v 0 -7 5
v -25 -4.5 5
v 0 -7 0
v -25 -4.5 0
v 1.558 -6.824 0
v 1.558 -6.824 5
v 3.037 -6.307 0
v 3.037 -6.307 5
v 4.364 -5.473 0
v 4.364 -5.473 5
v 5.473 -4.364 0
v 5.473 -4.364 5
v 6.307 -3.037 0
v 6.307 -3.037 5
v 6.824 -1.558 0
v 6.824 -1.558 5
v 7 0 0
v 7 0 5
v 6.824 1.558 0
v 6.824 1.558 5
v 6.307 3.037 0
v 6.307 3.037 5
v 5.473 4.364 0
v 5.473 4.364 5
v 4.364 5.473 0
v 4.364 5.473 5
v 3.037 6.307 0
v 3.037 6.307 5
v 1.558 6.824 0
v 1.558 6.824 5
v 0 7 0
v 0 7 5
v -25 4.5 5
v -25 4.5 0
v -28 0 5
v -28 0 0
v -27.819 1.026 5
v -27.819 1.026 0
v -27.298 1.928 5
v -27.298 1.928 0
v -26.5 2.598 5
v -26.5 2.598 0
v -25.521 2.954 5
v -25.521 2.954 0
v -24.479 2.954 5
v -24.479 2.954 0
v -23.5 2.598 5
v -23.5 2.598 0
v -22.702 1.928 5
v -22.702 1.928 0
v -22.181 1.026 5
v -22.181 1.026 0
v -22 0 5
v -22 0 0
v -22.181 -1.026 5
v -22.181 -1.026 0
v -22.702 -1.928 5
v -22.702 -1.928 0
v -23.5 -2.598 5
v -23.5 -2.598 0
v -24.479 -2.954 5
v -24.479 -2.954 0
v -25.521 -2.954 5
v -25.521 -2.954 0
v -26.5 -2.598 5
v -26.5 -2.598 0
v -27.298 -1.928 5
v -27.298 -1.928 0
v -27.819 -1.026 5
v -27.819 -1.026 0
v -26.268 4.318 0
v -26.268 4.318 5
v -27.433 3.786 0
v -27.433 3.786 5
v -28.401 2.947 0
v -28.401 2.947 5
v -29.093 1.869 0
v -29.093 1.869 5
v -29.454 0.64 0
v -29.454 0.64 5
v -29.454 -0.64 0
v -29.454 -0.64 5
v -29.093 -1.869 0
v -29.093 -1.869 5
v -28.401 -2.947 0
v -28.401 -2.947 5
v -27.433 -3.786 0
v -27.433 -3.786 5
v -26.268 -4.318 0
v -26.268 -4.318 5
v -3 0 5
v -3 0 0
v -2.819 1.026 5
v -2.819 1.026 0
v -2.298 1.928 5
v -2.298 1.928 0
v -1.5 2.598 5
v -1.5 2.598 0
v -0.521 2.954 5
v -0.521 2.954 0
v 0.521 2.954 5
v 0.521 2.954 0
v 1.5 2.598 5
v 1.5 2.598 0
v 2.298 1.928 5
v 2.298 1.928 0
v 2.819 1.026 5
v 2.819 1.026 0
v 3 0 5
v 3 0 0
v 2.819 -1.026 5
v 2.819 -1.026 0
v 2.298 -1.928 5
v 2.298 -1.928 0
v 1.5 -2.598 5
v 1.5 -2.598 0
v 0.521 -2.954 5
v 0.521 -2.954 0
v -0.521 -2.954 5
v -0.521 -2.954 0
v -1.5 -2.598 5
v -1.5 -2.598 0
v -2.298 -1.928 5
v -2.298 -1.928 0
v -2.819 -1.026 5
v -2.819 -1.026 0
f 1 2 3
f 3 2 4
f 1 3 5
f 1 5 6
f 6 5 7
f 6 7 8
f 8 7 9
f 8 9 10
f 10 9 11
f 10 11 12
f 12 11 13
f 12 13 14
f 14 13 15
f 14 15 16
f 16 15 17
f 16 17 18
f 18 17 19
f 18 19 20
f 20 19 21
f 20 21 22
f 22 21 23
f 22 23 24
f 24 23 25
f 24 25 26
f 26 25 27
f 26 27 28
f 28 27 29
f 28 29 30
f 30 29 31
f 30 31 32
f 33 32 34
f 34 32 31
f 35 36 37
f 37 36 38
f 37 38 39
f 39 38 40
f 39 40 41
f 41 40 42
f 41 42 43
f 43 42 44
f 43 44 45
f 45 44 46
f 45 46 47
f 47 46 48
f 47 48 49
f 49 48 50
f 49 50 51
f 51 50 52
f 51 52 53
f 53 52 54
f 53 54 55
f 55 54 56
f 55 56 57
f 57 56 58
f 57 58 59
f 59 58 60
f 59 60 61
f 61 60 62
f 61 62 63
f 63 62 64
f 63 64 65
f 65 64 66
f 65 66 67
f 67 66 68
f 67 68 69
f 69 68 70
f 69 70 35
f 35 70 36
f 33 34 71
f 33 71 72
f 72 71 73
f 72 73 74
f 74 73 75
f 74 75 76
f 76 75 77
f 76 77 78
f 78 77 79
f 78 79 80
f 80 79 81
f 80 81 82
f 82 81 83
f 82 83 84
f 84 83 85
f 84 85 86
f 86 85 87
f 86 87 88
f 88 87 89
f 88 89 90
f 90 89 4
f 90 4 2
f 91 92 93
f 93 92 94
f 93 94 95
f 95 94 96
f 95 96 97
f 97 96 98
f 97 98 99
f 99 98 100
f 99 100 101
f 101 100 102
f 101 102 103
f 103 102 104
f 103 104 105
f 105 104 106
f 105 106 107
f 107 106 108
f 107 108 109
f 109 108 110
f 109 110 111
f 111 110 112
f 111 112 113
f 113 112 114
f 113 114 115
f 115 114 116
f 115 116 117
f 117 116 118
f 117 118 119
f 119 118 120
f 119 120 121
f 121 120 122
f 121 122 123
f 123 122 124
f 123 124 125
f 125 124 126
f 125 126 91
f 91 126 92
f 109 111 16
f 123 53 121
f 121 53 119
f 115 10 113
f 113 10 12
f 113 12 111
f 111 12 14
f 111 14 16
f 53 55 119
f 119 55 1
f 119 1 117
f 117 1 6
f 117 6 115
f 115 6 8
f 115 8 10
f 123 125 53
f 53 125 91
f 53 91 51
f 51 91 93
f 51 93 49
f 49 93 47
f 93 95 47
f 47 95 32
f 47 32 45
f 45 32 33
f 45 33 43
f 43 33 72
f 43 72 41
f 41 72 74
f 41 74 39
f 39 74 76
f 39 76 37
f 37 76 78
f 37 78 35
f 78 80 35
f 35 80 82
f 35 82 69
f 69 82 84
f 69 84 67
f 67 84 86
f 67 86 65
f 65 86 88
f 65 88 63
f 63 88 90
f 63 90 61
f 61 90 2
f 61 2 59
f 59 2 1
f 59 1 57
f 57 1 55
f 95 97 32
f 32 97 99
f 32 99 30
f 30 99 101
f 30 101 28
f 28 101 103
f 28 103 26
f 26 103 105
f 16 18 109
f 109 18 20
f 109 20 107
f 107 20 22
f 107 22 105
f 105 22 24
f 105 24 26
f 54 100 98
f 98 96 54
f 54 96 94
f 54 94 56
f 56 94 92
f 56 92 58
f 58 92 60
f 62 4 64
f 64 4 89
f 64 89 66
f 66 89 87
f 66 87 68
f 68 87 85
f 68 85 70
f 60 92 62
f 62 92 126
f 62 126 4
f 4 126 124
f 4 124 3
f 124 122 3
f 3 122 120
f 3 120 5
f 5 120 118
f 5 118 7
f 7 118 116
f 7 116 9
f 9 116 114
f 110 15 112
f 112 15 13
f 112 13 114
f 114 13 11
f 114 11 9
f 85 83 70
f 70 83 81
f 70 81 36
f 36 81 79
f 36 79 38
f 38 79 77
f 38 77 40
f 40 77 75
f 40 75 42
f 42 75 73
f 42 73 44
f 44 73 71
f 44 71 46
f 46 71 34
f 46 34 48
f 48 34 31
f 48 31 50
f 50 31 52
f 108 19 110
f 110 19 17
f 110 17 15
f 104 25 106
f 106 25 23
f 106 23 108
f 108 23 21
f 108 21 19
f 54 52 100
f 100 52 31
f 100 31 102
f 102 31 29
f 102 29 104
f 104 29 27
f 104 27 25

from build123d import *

# Parameters (mm, degrees)
SKETCH1_R           = 3
SKETCH1_R_2         = 4.5
BOSS_EXTRUDE1_DEPTH = 5


with BuildPart() as part:
    # Sketch1 → Boss-Extrude1 (new body)
    # profile 1 of 3: a face of its own
    with BuildSketch(Plane.XY):
        with BuildLine():
            Line((-1.386138614, 6.861386139), (-25, 4.5))
            ThreePointArc((-25, 4.5), (-21.818019485, 3.181980515), (-20.5, 0))
            ThreePointArc((-20.5, 0), (-21.818019485, -3.181980515), (-25, -4.5))
            Line((-25, -4.5), (-1.386138614, -6.861386139))
            ThreePointArc((-1.386138614, -6.861386139), (-7, 0), (-1.386138614, 6.861386139))
        make_face()
    # profile 2 of 3: a face of its own
    with BuildSketch(Plane.XY):
        with BuildLine():
            Line((0, 7), (-1.386138614, 6.861386139))
            ThreePointArc((-1.386138614, 6.861386139), (-7, 0), (-1.386138614, -6.861386139))
            Line((-1.386138614, -6.861386139), (0, -7))
            ThreePointArc((0, -7), (4.949747468, -4.949747468), (7, 0))
            ThreePointArc((7, 0), (4.949747468, 4.949747468), (0, 7))
        make_face()
        Circle(SKETCH1_R, mode=Mode.SUBTRACT)
    # profile 3 of 3: a face of its own
    with BuildSketch(Plane.XY):
        with Locations((-25, 0)):
            Circle(SKETCH1_R_2)
        with Locations((-25, 0)):
            Circle(SKETCH1_R, mode=Mode.SUBTRACT)
    extrude(amount=BOSS_EXTRUDE1_DEPTH)


solid = part.part
